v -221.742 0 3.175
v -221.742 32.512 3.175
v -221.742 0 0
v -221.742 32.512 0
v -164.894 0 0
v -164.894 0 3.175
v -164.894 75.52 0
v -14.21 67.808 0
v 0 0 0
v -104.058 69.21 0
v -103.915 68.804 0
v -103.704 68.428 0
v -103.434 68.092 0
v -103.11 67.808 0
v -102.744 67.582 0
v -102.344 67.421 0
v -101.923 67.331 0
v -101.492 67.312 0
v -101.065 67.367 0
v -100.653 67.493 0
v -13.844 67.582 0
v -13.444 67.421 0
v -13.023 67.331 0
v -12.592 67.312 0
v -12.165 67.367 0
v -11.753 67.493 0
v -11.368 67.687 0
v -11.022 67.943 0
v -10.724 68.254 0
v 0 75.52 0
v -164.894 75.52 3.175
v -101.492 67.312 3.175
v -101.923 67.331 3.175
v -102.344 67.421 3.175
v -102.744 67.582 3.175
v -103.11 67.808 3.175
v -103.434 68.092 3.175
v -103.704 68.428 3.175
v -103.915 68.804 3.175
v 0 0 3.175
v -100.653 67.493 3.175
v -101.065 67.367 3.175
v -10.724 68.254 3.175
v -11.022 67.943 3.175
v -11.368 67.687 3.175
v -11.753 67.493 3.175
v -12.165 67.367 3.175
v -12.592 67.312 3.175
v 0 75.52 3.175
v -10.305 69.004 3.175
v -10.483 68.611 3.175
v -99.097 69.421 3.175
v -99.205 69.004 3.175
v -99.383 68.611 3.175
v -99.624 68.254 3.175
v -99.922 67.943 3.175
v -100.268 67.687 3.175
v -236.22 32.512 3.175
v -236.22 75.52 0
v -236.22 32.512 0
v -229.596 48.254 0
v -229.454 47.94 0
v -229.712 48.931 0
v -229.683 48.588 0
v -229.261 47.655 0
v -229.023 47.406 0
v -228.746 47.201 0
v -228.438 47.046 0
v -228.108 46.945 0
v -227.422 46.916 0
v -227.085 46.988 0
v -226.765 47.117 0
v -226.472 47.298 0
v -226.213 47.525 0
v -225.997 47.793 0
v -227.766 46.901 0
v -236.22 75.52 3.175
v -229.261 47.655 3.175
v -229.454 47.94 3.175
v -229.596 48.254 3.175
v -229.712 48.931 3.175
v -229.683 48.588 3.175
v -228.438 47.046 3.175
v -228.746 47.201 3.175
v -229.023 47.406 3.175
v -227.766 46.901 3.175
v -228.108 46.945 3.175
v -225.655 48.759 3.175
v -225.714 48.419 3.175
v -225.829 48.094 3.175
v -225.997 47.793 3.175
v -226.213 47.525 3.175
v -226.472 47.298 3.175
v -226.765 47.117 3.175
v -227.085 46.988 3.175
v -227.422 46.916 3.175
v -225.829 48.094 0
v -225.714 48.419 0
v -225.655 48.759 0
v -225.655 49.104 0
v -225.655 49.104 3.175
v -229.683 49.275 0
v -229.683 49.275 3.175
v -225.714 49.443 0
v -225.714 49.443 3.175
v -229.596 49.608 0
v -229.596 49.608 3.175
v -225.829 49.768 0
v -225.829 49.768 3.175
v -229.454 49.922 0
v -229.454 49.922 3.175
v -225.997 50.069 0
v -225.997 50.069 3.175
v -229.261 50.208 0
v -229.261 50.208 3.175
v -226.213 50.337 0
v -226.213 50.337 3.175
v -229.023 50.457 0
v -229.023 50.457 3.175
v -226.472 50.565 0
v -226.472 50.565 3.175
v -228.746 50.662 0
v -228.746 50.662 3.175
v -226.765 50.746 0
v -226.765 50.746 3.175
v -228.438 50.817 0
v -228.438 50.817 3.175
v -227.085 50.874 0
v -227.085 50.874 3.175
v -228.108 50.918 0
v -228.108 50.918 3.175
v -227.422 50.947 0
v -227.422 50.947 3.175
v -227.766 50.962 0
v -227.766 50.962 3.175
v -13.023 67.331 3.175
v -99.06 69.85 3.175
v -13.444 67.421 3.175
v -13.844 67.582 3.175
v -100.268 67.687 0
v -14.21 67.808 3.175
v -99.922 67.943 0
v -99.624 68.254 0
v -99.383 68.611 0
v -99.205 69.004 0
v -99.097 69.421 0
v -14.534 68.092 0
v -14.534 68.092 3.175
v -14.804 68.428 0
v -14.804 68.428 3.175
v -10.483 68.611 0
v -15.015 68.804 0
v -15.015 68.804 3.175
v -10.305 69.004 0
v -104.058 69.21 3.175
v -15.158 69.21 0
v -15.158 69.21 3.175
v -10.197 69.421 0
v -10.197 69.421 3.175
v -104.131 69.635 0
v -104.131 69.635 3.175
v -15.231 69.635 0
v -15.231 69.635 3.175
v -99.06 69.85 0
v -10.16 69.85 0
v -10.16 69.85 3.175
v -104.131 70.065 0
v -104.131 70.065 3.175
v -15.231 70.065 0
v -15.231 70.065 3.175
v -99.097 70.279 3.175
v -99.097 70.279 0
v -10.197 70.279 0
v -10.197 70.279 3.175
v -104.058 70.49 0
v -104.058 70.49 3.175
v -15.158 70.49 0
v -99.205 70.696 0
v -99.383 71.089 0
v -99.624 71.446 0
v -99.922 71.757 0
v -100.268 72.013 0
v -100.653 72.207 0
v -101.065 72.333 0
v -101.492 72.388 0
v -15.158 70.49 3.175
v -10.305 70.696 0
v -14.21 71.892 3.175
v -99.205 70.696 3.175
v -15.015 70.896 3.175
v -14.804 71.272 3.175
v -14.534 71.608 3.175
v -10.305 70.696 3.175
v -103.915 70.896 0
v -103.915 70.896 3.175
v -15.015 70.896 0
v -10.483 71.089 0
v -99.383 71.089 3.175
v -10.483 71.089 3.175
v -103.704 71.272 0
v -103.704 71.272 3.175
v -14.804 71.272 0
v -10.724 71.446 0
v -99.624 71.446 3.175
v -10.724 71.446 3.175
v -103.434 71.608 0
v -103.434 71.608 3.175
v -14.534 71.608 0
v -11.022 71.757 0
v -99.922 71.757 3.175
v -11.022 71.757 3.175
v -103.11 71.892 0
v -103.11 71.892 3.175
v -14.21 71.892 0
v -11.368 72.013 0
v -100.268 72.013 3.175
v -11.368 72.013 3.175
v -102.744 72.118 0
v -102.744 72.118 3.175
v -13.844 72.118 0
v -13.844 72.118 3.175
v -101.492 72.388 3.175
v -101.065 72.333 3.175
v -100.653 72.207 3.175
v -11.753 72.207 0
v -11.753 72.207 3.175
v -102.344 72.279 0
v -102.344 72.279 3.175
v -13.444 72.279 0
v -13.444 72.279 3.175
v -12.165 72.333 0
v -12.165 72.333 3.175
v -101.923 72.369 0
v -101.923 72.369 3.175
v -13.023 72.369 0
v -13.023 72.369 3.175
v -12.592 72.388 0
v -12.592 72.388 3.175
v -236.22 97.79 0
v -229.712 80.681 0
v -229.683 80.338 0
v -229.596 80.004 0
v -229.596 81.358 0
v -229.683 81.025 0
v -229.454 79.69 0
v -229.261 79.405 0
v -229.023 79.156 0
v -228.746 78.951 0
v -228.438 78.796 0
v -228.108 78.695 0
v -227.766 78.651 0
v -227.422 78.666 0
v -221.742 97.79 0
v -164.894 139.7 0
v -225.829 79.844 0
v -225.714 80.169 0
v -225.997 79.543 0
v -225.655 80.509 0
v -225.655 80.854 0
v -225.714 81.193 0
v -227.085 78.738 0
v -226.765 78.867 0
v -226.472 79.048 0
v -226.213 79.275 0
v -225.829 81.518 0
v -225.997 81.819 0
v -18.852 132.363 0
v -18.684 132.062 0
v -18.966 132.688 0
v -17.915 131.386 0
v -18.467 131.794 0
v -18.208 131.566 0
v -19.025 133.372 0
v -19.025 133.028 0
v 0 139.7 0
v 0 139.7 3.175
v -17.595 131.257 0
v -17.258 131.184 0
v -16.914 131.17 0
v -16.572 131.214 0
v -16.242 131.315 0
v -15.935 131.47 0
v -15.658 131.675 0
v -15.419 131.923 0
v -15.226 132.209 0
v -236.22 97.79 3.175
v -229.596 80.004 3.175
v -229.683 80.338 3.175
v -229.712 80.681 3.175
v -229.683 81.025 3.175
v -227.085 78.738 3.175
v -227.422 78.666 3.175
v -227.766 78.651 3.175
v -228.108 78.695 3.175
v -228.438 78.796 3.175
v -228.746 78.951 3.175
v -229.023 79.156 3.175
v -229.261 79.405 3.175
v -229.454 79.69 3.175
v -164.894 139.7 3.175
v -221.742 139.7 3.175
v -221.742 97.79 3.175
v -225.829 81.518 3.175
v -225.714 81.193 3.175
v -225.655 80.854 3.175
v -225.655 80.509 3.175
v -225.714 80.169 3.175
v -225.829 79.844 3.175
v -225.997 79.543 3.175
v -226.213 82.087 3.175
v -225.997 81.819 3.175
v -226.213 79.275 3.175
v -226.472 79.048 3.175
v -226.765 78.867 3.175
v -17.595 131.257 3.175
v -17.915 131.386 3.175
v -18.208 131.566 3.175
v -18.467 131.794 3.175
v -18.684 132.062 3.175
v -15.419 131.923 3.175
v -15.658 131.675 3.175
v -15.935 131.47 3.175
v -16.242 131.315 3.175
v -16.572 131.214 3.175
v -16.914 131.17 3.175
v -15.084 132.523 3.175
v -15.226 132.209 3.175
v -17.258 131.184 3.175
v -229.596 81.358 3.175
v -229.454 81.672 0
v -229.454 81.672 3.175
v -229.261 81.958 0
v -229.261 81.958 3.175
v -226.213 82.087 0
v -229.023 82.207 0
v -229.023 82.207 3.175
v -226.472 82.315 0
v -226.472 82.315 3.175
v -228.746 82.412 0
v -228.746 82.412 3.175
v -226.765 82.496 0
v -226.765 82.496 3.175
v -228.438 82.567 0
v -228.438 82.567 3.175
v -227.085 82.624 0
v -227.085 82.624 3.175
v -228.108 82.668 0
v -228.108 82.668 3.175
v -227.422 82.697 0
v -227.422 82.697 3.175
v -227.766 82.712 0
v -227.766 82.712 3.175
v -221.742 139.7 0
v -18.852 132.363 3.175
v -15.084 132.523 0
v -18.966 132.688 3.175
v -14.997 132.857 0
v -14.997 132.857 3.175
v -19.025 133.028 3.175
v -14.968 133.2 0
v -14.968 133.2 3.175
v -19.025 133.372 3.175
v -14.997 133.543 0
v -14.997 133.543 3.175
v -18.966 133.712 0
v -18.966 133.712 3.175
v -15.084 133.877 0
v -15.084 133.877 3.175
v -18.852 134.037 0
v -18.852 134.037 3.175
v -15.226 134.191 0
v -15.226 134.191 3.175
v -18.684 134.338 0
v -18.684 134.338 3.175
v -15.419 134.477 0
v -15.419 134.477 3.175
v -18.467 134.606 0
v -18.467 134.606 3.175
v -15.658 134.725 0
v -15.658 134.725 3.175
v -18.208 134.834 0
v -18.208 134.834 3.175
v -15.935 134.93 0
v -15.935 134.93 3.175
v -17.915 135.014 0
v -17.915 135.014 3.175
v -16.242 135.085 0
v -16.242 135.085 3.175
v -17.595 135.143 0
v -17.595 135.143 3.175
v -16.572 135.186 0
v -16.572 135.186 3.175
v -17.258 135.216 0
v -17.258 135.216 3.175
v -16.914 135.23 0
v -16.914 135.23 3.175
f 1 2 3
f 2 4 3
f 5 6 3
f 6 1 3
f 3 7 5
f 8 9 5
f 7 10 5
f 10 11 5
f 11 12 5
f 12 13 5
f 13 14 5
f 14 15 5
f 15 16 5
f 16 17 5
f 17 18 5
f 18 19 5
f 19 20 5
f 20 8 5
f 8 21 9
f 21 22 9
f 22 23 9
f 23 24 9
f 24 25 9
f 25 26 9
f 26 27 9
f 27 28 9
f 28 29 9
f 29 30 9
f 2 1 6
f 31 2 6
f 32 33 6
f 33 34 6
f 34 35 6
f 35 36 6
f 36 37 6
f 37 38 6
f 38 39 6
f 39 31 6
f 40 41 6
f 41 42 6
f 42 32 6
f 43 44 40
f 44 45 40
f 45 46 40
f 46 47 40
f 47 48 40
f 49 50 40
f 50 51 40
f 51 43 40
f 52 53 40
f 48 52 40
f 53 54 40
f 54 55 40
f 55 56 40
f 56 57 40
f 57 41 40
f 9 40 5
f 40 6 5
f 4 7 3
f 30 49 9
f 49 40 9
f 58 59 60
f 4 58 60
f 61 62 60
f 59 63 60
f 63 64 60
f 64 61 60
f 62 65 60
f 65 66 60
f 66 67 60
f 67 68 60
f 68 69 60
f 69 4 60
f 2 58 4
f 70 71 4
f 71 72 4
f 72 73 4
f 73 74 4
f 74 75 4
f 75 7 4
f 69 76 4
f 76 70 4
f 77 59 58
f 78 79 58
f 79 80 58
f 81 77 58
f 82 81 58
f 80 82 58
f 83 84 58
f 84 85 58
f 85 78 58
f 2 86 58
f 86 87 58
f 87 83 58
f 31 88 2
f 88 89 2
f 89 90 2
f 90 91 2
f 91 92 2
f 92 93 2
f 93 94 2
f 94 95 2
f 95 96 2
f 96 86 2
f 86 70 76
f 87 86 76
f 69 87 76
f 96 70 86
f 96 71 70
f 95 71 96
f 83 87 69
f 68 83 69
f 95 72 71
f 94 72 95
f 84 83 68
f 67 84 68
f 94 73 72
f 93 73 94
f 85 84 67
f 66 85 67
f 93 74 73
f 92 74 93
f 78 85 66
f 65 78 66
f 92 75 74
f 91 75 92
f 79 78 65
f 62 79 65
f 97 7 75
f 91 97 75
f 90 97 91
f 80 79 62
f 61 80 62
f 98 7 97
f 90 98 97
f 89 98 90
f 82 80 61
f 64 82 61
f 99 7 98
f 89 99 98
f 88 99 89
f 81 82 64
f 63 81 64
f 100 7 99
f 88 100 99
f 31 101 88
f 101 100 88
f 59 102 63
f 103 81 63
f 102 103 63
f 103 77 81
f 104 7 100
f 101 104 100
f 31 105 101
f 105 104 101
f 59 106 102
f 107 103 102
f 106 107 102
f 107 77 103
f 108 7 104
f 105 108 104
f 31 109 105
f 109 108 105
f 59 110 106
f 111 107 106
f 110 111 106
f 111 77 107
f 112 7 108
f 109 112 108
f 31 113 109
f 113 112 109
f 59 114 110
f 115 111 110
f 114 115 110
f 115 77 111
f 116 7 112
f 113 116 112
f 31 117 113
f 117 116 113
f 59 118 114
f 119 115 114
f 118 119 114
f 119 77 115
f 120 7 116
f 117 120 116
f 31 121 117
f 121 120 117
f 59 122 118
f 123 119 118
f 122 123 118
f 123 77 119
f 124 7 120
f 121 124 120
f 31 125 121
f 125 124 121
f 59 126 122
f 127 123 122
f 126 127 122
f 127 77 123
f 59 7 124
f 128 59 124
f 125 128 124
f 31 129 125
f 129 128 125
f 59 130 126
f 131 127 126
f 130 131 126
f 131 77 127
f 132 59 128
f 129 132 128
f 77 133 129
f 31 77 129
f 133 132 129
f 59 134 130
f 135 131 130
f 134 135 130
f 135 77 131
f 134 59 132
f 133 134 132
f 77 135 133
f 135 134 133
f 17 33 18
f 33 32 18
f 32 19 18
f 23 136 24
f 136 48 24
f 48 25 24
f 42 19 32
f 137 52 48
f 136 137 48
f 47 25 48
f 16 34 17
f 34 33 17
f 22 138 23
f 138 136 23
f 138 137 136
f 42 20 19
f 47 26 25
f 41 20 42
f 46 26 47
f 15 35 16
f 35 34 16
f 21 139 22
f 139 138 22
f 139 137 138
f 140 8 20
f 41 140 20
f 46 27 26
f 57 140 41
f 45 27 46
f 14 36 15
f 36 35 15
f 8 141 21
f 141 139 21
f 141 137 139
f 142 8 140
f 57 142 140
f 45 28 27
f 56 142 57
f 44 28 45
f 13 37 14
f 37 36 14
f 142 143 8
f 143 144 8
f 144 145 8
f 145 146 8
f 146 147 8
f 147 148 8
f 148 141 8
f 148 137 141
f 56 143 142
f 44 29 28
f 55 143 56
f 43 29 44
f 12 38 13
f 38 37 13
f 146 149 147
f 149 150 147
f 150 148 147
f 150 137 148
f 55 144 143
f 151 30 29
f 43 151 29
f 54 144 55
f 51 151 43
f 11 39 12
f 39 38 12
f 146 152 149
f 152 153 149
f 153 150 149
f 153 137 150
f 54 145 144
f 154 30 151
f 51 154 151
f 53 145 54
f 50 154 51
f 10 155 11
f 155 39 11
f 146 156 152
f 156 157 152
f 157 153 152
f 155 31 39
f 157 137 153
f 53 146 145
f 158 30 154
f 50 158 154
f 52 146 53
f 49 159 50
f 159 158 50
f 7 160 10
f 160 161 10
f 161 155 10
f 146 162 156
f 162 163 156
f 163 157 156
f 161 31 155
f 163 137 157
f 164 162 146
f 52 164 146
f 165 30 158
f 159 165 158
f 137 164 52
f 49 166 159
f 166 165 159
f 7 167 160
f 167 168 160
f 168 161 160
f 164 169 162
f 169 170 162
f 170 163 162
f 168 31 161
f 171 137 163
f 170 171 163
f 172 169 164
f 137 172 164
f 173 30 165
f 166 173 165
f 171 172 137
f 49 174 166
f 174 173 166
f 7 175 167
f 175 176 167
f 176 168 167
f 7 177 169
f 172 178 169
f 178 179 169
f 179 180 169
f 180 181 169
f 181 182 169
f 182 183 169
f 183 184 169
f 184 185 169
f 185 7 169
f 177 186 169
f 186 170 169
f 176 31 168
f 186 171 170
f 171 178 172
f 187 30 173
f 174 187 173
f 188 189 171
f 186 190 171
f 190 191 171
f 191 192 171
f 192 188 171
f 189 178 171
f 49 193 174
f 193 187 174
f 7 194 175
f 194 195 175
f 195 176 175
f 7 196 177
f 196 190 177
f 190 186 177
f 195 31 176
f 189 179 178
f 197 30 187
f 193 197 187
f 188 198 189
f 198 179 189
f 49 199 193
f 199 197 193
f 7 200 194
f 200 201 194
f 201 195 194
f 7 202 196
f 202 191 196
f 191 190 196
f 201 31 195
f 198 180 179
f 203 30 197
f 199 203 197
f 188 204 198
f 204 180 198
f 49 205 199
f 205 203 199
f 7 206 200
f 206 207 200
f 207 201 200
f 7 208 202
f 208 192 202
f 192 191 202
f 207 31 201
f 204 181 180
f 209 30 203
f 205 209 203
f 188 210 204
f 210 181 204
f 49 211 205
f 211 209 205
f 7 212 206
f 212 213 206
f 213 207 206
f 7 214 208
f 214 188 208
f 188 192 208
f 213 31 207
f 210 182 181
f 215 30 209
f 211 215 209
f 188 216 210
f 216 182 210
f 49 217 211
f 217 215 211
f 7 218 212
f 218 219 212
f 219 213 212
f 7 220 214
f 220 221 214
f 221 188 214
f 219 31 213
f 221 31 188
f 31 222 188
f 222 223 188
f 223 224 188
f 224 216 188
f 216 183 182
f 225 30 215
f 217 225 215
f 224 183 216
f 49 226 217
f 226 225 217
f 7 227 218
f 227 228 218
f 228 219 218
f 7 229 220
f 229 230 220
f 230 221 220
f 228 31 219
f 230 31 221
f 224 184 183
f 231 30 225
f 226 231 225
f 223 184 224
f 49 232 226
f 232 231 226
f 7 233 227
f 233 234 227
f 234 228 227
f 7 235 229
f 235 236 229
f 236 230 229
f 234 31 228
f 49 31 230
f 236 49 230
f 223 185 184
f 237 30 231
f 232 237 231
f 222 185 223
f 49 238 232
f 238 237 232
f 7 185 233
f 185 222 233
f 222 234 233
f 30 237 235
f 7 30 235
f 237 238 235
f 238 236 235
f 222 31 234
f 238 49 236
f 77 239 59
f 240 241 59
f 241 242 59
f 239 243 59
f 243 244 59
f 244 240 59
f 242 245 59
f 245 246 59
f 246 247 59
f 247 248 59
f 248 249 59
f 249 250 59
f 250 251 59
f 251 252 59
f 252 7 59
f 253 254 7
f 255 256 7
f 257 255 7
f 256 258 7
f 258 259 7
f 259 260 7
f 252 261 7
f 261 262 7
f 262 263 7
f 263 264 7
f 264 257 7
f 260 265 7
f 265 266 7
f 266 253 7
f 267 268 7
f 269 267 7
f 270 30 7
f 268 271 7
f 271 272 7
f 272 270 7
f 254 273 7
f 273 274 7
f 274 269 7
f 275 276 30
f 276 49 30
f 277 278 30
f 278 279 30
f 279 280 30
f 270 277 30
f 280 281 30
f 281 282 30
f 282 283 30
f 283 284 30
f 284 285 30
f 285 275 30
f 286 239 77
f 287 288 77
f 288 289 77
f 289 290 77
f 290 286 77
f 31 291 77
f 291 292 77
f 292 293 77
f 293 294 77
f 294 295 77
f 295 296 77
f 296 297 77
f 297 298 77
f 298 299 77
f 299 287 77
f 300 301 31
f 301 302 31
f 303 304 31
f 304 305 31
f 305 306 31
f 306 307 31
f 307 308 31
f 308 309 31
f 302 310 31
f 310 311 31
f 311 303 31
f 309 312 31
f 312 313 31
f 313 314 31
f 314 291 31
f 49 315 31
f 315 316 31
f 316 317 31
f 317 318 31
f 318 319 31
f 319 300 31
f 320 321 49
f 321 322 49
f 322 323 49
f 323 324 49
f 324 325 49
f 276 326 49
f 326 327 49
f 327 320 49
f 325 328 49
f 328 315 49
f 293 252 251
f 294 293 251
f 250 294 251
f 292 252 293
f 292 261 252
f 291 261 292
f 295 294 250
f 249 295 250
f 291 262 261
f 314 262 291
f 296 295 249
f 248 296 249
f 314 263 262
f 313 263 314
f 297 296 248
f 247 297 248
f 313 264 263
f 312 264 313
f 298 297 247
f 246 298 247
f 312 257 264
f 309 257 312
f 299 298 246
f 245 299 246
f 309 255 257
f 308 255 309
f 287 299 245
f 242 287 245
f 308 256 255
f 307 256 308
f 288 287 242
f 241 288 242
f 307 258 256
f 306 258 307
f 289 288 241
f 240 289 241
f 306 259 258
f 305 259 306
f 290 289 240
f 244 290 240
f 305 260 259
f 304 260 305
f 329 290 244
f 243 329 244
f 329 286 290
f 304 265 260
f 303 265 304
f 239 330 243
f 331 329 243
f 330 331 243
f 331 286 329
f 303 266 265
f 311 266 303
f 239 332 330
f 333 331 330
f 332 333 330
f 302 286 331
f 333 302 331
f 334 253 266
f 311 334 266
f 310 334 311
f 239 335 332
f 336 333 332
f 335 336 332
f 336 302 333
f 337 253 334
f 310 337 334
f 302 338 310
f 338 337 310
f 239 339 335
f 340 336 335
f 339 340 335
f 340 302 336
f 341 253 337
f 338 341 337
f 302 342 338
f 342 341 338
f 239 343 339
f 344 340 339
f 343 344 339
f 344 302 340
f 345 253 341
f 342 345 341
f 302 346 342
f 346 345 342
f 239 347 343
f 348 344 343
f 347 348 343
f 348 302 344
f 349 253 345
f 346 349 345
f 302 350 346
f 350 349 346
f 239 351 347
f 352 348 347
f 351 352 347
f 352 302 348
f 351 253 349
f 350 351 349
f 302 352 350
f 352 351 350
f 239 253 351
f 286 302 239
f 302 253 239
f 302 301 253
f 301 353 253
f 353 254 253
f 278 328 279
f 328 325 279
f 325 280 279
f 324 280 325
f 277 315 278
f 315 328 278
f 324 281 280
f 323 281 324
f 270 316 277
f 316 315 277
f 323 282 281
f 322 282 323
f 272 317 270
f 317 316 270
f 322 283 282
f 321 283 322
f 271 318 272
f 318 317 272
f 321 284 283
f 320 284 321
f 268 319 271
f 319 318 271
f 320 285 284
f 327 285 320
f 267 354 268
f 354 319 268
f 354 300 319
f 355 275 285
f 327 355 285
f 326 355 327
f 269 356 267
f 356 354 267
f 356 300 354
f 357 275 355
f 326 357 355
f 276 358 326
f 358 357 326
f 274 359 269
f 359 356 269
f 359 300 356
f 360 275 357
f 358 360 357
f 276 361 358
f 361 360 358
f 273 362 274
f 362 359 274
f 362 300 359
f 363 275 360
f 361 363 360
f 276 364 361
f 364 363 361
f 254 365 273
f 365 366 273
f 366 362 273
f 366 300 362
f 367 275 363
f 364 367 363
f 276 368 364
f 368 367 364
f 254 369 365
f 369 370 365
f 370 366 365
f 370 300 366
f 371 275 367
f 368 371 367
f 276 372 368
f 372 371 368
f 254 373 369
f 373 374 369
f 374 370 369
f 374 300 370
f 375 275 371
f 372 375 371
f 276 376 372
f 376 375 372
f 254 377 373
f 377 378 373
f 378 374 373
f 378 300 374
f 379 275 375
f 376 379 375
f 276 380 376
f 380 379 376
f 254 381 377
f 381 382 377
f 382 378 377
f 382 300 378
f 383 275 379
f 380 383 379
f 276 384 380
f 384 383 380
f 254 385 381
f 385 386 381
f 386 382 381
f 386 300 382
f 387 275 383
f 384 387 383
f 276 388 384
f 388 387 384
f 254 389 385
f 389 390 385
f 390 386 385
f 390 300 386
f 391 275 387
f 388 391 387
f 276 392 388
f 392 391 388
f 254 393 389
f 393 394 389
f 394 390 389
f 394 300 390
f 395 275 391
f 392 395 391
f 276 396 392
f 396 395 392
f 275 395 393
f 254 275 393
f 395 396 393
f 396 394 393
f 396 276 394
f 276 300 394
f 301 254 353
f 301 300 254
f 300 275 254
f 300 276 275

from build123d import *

# Parameters (mm, degrees)
SKETCH1_W           = 221.742
SKETCH1_H           = 139.7
SKETCH1_W_2         = 14.478
SKETCH1_H_2         = 65.278
BOSS_EXTRUDE3_DEPTH = 3.175
SKETCH3_R           = 2.032
CUT_EXTRUDE2_DEPTH  = 4.175
SKETCH4_R           = 2.032
CUT_EXTRUDE3_DEPTH  = 4.175
SKETCH5_R           = 2.54
CUT_EXTRUDE4_DEPTH  = 4.175


with BuildPart() as part:
    # Sketch1 → Boss-Extrude3 (new body)
    with BuildSketch(Plane.XY):
        with Locations((-110.871, 69.85)):
            Rectangle(SKETCH1_W, SKETCH1_H)
        with Locations((-228.981, 65.151)):
            Rectangle(SKETCH1_W_2, SKETCH1_H_2)
    extrude(amount=BOSS_EXTRUDE3_DEPTH)

    # Sketch3 → Cut-Extrude2 (cut, through all)
    with BuildSketch(Plane(origin=(0, 0, 0), x_dir=(-1, 0, 0), z_dir=(0, 0, -1))):
        with Locations((227.680130405, 80.681331583)):
            Circle(SKETCH3_R)
        with Locations((227.680130405, 48.931331583)):
            Circle(SKETCH3_R)
    extrude(amount=-CUT_EXTRUDE2_DEPTH, mode=Mode.SUBTRACT)

    # Sketch4 → Cut-Extrude3 (cut, through all)
    with BuildSketch(Plane.XY.offset(3.175)):
        with Locations((-17, 133.2)):
            Circle(SKETCH4_R)
    extrude(amount=-CUT_EXTRUDE3_DEPTH, mode=Mode.SUBTRACT)

    # Sketch5 → Cut-Extrude4 (cut, through all)
    with BuildSketch(Plane.XY.offset(3.175)):
        with Locations((-101.6, 69.85)):
            Circle(SKETCH5_R)
        with Locations((-12.7, 69.85)):
            Circle(SKETCH5_R)
    extrude(amount=-CUT_EXTRUDE4_DEPTH, mode=Mode.SUBTRACT)


solid = part.part
